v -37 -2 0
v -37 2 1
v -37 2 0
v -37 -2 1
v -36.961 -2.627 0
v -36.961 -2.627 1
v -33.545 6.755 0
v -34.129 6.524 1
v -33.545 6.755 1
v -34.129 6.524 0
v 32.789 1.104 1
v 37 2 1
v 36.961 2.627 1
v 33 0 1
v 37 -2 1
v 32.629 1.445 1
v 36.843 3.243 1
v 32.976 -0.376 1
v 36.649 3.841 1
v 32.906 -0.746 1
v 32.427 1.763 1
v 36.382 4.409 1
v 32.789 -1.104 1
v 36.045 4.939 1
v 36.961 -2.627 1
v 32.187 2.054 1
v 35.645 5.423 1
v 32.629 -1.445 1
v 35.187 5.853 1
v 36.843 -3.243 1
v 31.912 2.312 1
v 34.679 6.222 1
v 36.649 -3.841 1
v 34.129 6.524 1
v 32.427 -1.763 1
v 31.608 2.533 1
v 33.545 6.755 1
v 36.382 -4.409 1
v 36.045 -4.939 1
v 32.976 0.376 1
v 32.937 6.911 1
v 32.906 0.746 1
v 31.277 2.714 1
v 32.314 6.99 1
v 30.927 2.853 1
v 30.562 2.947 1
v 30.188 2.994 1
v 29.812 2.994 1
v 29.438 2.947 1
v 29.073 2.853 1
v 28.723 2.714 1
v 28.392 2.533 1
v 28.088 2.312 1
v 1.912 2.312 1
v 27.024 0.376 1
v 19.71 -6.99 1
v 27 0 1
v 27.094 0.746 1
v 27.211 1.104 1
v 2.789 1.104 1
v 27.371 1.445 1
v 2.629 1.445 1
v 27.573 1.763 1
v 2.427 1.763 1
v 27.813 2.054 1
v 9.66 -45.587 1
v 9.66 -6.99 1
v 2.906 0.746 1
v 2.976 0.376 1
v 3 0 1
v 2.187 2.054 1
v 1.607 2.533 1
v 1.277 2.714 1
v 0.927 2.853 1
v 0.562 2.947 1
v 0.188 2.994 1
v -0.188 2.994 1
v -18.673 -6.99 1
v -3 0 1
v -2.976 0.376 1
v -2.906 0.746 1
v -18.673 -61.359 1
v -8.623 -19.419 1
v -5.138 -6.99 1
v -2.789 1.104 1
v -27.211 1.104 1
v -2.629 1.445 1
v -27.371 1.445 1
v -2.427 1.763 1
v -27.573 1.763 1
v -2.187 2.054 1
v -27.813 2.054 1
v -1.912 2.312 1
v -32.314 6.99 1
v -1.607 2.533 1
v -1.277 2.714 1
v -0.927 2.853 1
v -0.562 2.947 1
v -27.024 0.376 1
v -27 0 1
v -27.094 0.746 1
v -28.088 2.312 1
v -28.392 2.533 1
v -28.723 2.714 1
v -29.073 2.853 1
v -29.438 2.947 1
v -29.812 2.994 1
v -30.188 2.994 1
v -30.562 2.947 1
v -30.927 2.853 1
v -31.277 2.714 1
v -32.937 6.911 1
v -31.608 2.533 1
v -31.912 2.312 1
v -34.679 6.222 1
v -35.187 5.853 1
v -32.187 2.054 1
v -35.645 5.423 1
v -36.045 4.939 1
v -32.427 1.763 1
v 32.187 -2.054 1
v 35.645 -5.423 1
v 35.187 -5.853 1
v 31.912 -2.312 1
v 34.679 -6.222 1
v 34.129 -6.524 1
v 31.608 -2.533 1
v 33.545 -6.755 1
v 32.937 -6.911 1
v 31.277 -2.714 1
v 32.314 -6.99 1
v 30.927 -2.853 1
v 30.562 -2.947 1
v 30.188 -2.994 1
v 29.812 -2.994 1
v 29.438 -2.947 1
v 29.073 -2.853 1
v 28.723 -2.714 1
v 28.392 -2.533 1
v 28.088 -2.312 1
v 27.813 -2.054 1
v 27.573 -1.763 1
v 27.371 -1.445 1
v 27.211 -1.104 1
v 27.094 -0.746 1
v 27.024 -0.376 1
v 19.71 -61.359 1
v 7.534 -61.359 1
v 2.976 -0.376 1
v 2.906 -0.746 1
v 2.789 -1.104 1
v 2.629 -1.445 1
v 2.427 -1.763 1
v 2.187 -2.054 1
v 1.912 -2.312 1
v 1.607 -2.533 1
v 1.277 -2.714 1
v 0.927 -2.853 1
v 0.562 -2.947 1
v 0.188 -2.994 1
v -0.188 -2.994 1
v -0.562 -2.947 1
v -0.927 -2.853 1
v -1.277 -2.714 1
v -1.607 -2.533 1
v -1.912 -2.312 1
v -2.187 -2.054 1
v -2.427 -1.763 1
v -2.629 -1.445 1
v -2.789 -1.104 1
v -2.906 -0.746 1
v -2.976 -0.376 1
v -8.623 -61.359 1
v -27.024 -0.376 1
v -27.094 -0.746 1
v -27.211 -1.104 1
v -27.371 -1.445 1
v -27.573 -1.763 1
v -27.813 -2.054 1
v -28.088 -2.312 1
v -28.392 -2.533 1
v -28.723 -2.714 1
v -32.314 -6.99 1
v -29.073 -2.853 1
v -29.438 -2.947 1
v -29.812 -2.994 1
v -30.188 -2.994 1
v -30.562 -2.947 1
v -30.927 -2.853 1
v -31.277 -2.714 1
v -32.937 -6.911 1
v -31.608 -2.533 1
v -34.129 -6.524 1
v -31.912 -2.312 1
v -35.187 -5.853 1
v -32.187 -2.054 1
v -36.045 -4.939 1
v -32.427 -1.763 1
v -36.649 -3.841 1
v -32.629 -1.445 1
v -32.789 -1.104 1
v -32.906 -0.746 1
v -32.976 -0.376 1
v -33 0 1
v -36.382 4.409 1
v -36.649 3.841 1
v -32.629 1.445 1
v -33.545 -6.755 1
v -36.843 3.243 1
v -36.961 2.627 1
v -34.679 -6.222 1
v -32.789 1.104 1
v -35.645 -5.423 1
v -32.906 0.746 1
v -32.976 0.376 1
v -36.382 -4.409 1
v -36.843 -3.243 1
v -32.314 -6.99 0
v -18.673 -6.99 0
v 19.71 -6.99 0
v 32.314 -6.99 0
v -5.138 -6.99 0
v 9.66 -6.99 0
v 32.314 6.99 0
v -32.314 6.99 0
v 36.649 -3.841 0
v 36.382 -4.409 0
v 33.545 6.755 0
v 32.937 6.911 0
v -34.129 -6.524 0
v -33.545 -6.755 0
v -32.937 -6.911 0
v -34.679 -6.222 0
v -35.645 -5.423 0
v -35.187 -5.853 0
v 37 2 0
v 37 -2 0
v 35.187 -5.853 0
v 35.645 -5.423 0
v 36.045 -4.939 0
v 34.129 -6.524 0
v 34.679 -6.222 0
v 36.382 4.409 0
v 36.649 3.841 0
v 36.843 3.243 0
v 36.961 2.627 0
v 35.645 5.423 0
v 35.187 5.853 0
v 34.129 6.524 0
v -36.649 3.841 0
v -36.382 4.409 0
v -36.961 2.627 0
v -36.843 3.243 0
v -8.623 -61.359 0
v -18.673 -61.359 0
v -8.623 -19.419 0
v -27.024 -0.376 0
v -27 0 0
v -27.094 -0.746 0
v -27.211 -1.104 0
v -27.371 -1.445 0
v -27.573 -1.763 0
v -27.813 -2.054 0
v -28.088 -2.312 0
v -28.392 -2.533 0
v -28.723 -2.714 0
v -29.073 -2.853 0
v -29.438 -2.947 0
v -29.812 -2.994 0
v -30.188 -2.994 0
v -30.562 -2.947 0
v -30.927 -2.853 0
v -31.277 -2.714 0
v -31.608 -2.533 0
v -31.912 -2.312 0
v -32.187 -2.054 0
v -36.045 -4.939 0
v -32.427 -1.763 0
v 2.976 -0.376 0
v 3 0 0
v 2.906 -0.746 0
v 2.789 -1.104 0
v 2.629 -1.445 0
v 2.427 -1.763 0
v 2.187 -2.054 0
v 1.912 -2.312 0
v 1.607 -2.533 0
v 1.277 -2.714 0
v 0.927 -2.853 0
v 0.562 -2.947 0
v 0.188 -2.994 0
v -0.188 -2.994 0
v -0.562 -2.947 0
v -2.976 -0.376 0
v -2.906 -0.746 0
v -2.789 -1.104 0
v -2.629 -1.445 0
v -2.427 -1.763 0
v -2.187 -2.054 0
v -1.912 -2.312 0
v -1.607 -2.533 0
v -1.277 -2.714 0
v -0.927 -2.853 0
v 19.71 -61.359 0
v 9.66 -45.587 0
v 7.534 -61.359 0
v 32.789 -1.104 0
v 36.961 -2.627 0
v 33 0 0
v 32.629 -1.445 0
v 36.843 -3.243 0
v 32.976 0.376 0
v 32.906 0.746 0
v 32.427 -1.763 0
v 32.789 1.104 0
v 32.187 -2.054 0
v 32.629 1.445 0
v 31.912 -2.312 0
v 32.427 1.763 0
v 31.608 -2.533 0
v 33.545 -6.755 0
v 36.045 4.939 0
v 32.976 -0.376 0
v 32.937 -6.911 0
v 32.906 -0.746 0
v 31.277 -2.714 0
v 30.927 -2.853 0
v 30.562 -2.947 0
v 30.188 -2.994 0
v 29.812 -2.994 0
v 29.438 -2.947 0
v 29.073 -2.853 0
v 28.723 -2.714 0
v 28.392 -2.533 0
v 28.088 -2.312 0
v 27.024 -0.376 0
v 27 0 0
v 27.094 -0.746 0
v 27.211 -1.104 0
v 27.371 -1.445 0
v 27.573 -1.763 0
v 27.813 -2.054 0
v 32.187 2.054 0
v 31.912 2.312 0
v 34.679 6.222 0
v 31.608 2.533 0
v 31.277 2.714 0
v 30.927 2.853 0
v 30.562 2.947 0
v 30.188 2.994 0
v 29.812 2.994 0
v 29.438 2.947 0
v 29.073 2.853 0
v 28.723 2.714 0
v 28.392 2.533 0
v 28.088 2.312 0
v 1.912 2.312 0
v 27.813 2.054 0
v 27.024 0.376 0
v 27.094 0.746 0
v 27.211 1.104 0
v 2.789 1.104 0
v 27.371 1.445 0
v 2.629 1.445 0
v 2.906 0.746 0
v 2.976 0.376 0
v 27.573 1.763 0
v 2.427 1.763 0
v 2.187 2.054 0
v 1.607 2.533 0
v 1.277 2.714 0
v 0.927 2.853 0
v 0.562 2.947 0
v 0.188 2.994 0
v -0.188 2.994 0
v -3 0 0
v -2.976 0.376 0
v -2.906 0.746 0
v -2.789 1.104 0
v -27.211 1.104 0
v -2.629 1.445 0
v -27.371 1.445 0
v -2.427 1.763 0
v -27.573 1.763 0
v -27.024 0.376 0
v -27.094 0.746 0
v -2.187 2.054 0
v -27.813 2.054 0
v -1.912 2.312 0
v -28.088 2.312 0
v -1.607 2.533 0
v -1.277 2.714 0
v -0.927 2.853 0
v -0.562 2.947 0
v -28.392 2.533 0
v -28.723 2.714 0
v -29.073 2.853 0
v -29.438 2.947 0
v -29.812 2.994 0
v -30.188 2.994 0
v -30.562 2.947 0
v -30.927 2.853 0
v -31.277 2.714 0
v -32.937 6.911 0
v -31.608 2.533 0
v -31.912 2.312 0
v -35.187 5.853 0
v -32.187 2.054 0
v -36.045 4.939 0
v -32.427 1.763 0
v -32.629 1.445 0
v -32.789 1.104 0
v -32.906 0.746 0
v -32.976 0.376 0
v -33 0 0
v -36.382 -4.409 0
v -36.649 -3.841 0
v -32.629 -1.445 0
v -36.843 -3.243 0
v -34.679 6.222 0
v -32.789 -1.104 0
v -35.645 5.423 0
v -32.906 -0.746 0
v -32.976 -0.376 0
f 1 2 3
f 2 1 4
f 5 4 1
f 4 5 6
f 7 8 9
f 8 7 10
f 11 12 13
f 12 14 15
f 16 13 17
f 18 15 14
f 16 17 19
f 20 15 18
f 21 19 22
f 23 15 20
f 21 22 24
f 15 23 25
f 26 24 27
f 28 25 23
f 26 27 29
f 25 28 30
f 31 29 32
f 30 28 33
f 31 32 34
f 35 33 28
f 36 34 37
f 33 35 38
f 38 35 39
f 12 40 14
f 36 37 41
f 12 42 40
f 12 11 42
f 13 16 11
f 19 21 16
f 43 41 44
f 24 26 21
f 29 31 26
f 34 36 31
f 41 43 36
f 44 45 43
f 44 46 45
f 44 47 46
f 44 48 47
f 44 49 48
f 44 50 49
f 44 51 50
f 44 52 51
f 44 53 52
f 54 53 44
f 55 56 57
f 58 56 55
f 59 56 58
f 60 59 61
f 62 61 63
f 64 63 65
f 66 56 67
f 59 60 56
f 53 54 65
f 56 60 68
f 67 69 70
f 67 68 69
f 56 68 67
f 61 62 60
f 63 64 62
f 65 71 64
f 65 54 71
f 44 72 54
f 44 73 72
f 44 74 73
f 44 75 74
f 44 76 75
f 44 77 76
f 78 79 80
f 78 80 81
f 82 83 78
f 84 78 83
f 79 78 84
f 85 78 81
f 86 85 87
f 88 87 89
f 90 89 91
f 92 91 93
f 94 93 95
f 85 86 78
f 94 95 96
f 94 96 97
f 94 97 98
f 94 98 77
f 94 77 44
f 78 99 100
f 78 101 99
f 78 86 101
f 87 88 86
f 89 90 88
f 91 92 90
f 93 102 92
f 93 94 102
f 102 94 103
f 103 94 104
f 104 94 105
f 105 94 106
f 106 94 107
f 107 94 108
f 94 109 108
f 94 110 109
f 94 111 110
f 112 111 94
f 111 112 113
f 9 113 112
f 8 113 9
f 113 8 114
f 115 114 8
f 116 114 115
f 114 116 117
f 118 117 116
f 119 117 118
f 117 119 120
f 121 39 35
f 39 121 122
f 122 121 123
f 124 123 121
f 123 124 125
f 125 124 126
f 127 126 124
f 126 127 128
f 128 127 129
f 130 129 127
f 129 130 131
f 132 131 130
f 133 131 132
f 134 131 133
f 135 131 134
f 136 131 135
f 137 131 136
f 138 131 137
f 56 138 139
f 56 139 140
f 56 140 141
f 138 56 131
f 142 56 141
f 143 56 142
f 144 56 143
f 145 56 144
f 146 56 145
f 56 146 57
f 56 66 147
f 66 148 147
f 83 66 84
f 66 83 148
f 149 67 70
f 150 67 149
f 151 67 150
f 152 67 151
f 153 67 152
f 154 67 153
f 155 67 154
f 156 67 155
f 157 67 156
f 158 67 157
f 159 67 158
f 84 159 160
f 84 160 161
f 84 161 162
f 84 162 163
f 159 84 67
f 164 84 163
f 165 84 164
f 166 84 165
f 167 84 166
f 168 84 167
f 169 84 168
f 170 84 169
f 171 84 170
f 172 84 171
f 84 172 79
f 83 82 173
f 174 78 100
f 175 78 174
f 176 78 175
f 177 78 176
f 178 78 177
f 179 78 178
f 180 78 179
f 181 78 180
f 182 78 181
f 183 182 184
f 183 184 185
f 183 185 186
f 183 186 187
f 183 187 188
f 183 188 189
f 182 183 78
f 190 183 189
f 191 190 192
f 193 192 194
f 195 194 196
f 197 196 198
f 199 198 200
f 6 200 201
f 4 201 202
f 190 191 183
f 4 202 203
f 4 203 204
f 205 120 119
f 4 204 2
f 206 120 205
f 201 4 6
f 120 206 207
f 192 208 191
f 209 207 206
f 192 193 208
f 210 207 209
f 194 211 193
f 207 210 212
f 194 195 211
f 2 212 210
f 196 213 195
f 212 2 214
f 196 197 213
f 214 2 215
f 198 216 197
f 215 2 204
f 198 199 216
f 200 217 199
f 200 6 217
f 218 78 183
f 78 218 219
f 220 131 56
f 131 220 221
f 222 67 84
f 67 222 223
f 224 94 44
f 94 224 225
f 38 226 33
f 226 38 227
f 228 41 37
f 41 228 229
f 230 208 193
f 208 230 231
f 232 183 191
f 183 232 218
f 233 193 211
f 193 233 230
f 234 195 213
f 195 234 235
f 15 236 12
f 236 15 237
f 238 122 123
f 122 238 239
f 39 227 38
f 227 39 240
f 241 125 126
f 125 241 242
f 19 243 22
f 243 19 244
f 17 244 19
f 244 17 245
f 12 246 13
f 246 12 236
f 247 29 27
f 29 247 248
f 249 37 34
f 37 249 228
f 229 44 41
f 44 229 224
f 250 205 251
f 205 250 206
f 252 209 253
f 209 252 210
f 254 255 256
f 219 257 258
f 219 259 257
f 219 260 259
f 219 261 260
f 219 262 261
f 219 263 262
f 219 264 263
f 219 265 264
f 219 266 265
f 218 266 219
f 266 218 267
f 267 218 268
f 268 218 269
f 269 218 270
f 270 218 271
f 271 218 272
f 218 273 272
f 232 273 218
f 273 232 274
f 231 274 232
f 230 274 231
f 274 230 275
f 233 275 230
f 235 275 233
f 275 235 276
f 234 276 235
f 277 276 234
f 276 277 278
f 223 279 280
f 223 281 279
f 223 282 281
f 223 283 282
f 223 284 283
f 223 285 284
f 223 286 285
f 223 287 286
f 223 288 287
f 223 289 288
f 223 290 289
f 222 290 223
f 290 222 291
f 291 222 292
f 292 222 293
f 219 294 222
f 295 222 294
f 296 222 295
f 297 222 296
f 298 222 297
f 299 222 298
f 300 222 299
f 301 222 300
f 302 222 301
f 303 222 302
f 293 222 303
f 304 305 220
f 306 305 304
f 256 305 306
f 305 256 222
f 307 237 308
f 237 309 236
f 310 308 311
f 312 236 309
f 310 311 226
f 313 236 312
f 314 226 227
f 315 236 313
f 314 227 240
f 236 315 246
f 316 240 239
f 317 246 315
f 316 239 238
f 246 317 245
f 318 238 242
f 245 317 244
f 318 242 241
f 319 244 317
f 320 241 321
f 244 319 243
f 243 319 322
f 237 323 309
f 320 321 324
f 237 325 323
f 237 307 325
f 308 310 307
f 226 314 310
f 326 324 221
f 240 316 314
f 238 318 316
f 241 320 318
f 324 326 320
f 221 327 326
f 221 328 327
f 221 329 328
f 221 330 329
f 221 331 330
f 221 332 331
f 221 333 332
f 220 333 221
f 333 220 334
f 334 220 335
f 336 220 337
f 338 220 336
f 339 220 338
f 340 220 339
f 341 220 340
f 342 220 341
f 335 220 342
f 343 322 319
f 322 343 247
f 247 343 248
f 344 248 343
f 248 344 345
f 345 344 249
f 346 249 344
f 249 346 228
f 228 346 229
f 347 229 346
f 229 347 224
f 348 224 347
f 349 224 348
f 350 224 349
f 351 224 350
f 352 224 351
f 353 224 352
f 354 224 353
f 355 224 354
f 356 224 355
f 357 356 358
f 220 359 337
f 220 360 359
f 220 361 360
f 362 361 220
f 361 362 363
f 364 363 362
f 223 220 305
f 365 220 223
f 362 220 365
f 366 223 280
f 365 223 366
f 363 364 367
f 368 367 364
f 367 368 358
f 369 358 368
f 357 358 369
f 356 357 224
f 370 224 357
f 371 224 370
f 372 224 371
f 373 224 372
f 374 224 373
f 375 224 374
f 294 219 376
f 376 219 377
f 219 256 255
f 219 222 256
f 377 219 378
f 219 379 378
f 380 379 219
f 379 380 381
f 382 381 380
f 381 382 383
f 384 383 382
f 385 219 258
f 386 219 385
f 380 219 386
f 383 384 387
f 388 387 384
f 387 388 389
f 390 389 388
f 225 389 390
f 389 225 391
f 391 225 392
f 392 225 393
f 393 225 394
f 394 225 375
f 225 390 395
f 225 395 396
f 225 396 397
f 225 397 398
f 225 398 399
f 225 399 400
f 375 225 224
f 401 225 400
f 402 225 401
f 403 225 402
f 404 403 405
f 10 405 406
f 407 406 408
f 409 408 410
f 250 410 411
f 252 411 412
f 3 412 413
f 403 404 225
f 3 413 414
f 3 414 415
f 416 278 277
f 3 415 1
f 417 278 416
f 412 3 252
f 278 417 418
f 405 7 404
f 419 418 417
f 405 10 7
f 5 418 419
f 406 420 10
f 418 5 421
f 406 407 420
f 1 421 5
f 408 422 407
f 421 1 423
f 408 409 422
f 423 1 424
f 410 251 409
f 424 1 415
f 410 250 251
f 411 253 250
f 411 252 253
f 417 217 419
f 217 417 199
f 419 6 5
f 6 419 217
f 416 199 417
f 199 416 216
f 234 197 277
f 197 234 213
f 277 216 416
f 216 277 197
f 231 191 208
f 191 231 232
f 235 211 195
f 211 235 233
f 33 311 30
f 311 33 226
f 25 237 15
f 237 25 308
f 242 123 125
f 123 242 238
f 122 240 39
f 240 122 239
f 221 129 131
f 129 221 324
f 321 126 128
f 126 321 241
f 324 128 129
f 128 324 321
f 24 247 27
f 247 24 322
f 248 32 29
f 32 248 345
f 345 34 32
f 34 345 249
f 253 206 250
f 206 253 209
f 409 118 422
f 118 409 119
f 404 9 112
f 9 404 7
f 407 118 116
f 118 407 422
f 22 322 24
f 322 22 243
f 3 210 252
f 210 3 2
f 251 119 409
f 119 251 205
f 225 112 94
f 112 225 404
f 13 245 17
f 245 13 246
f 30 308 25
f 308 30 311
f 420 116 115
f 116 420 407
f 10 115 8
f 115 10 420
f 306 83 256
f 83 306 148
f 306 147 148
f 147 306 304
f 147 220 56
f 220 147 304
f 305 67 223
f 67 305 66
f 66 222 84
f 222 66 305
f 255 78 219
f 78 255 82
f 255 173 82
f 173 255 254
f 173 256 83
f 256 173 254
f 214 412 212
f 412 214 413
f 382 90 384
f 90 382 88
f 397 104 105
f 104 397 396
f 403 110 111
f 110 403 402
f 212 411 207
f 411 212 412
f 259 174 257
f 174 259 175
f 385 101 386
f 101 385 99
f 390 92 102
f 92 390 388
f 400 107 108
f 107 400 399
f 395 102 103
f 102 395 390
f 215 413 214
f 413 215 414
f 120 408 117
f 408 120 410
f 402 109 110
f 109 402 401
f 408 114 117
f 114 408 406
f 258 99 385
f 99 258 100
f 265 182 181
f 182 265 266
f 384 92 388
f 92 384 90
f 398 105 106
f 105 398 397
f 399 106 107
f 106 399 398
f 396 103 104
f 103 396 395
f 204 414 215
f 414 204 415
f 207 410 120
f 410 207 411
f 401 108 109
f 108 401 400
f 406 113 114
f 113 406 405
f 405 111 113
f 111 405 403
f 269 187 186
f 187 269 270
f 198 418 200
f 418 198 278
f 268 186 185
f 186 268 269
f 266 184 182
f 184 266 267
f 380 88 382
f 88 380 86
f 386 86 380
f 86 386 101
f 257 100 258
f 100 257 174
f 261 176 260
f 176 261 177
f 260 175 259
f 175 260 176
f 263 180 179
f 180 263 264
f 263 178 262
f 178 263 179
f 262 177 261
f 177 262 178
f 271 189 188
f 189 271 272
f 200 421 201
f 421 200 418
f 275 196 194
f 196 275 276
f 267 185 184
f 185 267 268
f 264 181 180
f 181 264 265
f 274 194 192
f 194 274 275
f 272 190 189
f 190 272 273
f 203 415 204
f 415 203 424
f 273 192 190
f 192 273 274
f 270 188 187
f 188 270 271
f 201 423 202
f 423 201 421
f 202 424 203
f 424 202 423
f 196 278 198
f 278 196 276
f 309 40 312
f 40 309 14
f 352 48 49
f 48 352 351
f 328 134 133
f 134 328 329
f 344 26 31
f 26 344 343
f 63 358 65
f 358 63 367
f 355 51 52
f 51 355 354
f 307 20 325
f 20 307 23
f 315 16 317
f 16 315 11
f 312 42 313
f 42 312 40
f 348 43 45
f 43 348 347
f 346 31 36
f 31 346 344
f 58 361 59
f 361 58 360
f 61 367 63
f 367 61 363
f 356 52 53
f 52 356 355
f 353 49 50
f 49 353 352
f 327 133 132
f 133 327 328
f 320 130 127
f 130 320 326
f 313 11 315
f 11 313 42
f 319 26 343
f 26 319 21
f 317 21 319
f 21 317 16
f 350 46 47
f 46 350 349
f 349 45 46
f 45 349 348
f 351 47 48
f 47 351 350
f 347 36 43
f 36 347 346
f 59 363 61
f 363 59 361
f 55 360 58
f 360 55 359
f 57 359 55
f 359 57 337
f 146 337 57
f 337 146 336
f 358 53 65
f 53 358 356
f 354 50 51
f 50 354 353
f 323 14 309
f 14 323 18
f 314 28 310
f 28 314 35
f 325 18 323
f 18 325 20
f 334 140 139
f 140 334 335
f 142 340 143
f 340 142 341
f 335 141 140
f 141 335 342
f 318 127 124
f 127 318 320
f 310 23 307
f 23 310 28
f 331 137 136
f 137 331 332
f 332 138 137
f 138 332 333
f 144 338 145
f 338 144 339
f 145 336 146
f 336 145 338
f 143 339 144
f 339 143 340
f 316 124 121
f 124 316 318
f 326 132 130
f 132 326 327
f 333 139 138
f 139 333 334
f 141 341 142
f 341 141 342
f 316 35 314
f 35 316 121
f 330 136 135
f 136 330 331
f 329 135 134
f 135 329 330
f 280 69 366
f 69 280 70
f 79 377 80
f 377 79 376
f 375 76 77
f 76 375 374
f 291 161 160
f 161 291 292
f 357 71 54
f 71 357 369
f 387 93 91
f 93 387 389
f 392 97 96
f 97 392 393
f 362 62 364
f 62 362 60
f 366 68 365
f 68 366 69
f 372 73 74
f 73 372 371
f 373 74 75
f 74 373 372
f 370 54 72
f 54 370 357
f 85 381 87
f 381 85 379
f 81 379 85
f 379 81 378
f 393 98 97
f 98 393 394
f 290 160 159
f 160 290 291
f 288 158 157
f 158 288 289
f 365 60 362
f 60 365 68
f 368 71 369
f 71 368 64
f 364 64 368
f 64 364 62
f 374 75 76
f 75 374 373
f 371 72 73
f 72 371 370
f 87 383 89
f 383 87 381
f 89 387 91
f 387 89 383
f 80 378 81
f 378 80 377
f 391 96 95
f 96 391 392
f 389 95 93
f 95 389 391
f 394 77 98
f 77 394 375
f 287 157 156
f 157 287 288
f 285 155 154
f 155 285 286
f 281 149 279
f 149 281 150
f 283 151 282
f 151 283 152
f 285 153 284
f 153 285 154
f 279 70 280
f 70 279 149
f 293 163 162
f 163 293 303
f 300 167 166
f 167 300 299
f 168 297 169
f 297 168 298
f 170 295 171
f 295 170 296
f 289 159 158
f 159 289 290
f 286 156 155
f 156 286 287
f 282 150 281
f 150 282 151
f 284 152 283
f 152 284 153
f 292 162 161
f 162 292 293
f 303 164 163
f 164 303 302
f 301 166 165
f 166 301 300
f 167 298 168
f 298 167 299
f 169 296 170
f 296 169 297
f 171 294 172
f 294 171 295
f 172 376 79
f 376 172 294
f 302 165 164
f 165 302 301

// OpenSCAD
$fn = 50;


difference() {
	union() {
		translate(v = [0, 0, 0]) {
			rotate(a = [0, 0, 0]) {
				hull() {
					translate(v = [-32.0000000000, 2.0000000000, 0]) {
						rotate(a = [0, 0, 0]) {
							translate(v = [0, 0, 0]) {
								rotate(a = [0, 0, 0]) {
									cylinder(h = 1, r = 5);
								}
							}
						}
					}
					translate(v = [32.0000000000, 2.0000000000, 0]) {
						rotate(a = [0, 0, 0]) {
							translate(v = [0, 0, 0]) {
								rotate(a = [0, 0, 0]) {
									cylinder(h = 1, r = 5);
								}
							}
						}
					}
					translate(v = [-32.0000000000, -2.0000000000, 0]) {
						rotate(a = [0, 0, 0]) {
							translate(v = [0, 0, 0]) {
								rotate(a = [0, 0, 0]) {
									cylinder(h = 1, r = 5);
								}
							}
						}
					}
					translate(v = [32.0000000000, -2.0000000000, 0]) {
						rotate(a = [0, 0, 0]) {
							translate(v = [0, 0, 0]) {
								rotate(a = [0, 0, 0]) {
									cylinder(h = 1, r = 5);
								}
							}
						}
					}
				}
			}
		}
		translate(v = [0, -5, 0]) {
			rotate(a = [0, 0, 0]) {
				linear_extrude(height = 1) {
					text(font = "DejaVu Sans Mono:style=Bold", halign = "center", size = 57.0000000000, text = "N", valign = "top");
				}
			}
		}
	}
	union() {
		translate(v = [-30.0000000000, 0.0000000000, -125.0000000000]) {
			rotate(a = [0, 0, 0]) {
				cylinder(h = 250, r = 3.0000000000);
			}
		}
		translate(v = [30.0000000000, 0.0000000000, -125.0000000000]) {
			rotate(a = [0, 0, 0]) {
				cylinder(h = 250, r = 3.0000000000);
			}
		}
		translate(v = [30.0000000000, 0.0000000000, -125.0000000000]) {
			rotate(a = [0, 0, 0]) {
				cylinder(h = 250, r = 3.0000000000);
			}
		}
		translate(v = [0, 0, -125.0000000000]) {
			rotate(a = [0, 0, 0]) {
				cylinder(h = 250, r = 3.0000000000);
			}
		}
	}
}
